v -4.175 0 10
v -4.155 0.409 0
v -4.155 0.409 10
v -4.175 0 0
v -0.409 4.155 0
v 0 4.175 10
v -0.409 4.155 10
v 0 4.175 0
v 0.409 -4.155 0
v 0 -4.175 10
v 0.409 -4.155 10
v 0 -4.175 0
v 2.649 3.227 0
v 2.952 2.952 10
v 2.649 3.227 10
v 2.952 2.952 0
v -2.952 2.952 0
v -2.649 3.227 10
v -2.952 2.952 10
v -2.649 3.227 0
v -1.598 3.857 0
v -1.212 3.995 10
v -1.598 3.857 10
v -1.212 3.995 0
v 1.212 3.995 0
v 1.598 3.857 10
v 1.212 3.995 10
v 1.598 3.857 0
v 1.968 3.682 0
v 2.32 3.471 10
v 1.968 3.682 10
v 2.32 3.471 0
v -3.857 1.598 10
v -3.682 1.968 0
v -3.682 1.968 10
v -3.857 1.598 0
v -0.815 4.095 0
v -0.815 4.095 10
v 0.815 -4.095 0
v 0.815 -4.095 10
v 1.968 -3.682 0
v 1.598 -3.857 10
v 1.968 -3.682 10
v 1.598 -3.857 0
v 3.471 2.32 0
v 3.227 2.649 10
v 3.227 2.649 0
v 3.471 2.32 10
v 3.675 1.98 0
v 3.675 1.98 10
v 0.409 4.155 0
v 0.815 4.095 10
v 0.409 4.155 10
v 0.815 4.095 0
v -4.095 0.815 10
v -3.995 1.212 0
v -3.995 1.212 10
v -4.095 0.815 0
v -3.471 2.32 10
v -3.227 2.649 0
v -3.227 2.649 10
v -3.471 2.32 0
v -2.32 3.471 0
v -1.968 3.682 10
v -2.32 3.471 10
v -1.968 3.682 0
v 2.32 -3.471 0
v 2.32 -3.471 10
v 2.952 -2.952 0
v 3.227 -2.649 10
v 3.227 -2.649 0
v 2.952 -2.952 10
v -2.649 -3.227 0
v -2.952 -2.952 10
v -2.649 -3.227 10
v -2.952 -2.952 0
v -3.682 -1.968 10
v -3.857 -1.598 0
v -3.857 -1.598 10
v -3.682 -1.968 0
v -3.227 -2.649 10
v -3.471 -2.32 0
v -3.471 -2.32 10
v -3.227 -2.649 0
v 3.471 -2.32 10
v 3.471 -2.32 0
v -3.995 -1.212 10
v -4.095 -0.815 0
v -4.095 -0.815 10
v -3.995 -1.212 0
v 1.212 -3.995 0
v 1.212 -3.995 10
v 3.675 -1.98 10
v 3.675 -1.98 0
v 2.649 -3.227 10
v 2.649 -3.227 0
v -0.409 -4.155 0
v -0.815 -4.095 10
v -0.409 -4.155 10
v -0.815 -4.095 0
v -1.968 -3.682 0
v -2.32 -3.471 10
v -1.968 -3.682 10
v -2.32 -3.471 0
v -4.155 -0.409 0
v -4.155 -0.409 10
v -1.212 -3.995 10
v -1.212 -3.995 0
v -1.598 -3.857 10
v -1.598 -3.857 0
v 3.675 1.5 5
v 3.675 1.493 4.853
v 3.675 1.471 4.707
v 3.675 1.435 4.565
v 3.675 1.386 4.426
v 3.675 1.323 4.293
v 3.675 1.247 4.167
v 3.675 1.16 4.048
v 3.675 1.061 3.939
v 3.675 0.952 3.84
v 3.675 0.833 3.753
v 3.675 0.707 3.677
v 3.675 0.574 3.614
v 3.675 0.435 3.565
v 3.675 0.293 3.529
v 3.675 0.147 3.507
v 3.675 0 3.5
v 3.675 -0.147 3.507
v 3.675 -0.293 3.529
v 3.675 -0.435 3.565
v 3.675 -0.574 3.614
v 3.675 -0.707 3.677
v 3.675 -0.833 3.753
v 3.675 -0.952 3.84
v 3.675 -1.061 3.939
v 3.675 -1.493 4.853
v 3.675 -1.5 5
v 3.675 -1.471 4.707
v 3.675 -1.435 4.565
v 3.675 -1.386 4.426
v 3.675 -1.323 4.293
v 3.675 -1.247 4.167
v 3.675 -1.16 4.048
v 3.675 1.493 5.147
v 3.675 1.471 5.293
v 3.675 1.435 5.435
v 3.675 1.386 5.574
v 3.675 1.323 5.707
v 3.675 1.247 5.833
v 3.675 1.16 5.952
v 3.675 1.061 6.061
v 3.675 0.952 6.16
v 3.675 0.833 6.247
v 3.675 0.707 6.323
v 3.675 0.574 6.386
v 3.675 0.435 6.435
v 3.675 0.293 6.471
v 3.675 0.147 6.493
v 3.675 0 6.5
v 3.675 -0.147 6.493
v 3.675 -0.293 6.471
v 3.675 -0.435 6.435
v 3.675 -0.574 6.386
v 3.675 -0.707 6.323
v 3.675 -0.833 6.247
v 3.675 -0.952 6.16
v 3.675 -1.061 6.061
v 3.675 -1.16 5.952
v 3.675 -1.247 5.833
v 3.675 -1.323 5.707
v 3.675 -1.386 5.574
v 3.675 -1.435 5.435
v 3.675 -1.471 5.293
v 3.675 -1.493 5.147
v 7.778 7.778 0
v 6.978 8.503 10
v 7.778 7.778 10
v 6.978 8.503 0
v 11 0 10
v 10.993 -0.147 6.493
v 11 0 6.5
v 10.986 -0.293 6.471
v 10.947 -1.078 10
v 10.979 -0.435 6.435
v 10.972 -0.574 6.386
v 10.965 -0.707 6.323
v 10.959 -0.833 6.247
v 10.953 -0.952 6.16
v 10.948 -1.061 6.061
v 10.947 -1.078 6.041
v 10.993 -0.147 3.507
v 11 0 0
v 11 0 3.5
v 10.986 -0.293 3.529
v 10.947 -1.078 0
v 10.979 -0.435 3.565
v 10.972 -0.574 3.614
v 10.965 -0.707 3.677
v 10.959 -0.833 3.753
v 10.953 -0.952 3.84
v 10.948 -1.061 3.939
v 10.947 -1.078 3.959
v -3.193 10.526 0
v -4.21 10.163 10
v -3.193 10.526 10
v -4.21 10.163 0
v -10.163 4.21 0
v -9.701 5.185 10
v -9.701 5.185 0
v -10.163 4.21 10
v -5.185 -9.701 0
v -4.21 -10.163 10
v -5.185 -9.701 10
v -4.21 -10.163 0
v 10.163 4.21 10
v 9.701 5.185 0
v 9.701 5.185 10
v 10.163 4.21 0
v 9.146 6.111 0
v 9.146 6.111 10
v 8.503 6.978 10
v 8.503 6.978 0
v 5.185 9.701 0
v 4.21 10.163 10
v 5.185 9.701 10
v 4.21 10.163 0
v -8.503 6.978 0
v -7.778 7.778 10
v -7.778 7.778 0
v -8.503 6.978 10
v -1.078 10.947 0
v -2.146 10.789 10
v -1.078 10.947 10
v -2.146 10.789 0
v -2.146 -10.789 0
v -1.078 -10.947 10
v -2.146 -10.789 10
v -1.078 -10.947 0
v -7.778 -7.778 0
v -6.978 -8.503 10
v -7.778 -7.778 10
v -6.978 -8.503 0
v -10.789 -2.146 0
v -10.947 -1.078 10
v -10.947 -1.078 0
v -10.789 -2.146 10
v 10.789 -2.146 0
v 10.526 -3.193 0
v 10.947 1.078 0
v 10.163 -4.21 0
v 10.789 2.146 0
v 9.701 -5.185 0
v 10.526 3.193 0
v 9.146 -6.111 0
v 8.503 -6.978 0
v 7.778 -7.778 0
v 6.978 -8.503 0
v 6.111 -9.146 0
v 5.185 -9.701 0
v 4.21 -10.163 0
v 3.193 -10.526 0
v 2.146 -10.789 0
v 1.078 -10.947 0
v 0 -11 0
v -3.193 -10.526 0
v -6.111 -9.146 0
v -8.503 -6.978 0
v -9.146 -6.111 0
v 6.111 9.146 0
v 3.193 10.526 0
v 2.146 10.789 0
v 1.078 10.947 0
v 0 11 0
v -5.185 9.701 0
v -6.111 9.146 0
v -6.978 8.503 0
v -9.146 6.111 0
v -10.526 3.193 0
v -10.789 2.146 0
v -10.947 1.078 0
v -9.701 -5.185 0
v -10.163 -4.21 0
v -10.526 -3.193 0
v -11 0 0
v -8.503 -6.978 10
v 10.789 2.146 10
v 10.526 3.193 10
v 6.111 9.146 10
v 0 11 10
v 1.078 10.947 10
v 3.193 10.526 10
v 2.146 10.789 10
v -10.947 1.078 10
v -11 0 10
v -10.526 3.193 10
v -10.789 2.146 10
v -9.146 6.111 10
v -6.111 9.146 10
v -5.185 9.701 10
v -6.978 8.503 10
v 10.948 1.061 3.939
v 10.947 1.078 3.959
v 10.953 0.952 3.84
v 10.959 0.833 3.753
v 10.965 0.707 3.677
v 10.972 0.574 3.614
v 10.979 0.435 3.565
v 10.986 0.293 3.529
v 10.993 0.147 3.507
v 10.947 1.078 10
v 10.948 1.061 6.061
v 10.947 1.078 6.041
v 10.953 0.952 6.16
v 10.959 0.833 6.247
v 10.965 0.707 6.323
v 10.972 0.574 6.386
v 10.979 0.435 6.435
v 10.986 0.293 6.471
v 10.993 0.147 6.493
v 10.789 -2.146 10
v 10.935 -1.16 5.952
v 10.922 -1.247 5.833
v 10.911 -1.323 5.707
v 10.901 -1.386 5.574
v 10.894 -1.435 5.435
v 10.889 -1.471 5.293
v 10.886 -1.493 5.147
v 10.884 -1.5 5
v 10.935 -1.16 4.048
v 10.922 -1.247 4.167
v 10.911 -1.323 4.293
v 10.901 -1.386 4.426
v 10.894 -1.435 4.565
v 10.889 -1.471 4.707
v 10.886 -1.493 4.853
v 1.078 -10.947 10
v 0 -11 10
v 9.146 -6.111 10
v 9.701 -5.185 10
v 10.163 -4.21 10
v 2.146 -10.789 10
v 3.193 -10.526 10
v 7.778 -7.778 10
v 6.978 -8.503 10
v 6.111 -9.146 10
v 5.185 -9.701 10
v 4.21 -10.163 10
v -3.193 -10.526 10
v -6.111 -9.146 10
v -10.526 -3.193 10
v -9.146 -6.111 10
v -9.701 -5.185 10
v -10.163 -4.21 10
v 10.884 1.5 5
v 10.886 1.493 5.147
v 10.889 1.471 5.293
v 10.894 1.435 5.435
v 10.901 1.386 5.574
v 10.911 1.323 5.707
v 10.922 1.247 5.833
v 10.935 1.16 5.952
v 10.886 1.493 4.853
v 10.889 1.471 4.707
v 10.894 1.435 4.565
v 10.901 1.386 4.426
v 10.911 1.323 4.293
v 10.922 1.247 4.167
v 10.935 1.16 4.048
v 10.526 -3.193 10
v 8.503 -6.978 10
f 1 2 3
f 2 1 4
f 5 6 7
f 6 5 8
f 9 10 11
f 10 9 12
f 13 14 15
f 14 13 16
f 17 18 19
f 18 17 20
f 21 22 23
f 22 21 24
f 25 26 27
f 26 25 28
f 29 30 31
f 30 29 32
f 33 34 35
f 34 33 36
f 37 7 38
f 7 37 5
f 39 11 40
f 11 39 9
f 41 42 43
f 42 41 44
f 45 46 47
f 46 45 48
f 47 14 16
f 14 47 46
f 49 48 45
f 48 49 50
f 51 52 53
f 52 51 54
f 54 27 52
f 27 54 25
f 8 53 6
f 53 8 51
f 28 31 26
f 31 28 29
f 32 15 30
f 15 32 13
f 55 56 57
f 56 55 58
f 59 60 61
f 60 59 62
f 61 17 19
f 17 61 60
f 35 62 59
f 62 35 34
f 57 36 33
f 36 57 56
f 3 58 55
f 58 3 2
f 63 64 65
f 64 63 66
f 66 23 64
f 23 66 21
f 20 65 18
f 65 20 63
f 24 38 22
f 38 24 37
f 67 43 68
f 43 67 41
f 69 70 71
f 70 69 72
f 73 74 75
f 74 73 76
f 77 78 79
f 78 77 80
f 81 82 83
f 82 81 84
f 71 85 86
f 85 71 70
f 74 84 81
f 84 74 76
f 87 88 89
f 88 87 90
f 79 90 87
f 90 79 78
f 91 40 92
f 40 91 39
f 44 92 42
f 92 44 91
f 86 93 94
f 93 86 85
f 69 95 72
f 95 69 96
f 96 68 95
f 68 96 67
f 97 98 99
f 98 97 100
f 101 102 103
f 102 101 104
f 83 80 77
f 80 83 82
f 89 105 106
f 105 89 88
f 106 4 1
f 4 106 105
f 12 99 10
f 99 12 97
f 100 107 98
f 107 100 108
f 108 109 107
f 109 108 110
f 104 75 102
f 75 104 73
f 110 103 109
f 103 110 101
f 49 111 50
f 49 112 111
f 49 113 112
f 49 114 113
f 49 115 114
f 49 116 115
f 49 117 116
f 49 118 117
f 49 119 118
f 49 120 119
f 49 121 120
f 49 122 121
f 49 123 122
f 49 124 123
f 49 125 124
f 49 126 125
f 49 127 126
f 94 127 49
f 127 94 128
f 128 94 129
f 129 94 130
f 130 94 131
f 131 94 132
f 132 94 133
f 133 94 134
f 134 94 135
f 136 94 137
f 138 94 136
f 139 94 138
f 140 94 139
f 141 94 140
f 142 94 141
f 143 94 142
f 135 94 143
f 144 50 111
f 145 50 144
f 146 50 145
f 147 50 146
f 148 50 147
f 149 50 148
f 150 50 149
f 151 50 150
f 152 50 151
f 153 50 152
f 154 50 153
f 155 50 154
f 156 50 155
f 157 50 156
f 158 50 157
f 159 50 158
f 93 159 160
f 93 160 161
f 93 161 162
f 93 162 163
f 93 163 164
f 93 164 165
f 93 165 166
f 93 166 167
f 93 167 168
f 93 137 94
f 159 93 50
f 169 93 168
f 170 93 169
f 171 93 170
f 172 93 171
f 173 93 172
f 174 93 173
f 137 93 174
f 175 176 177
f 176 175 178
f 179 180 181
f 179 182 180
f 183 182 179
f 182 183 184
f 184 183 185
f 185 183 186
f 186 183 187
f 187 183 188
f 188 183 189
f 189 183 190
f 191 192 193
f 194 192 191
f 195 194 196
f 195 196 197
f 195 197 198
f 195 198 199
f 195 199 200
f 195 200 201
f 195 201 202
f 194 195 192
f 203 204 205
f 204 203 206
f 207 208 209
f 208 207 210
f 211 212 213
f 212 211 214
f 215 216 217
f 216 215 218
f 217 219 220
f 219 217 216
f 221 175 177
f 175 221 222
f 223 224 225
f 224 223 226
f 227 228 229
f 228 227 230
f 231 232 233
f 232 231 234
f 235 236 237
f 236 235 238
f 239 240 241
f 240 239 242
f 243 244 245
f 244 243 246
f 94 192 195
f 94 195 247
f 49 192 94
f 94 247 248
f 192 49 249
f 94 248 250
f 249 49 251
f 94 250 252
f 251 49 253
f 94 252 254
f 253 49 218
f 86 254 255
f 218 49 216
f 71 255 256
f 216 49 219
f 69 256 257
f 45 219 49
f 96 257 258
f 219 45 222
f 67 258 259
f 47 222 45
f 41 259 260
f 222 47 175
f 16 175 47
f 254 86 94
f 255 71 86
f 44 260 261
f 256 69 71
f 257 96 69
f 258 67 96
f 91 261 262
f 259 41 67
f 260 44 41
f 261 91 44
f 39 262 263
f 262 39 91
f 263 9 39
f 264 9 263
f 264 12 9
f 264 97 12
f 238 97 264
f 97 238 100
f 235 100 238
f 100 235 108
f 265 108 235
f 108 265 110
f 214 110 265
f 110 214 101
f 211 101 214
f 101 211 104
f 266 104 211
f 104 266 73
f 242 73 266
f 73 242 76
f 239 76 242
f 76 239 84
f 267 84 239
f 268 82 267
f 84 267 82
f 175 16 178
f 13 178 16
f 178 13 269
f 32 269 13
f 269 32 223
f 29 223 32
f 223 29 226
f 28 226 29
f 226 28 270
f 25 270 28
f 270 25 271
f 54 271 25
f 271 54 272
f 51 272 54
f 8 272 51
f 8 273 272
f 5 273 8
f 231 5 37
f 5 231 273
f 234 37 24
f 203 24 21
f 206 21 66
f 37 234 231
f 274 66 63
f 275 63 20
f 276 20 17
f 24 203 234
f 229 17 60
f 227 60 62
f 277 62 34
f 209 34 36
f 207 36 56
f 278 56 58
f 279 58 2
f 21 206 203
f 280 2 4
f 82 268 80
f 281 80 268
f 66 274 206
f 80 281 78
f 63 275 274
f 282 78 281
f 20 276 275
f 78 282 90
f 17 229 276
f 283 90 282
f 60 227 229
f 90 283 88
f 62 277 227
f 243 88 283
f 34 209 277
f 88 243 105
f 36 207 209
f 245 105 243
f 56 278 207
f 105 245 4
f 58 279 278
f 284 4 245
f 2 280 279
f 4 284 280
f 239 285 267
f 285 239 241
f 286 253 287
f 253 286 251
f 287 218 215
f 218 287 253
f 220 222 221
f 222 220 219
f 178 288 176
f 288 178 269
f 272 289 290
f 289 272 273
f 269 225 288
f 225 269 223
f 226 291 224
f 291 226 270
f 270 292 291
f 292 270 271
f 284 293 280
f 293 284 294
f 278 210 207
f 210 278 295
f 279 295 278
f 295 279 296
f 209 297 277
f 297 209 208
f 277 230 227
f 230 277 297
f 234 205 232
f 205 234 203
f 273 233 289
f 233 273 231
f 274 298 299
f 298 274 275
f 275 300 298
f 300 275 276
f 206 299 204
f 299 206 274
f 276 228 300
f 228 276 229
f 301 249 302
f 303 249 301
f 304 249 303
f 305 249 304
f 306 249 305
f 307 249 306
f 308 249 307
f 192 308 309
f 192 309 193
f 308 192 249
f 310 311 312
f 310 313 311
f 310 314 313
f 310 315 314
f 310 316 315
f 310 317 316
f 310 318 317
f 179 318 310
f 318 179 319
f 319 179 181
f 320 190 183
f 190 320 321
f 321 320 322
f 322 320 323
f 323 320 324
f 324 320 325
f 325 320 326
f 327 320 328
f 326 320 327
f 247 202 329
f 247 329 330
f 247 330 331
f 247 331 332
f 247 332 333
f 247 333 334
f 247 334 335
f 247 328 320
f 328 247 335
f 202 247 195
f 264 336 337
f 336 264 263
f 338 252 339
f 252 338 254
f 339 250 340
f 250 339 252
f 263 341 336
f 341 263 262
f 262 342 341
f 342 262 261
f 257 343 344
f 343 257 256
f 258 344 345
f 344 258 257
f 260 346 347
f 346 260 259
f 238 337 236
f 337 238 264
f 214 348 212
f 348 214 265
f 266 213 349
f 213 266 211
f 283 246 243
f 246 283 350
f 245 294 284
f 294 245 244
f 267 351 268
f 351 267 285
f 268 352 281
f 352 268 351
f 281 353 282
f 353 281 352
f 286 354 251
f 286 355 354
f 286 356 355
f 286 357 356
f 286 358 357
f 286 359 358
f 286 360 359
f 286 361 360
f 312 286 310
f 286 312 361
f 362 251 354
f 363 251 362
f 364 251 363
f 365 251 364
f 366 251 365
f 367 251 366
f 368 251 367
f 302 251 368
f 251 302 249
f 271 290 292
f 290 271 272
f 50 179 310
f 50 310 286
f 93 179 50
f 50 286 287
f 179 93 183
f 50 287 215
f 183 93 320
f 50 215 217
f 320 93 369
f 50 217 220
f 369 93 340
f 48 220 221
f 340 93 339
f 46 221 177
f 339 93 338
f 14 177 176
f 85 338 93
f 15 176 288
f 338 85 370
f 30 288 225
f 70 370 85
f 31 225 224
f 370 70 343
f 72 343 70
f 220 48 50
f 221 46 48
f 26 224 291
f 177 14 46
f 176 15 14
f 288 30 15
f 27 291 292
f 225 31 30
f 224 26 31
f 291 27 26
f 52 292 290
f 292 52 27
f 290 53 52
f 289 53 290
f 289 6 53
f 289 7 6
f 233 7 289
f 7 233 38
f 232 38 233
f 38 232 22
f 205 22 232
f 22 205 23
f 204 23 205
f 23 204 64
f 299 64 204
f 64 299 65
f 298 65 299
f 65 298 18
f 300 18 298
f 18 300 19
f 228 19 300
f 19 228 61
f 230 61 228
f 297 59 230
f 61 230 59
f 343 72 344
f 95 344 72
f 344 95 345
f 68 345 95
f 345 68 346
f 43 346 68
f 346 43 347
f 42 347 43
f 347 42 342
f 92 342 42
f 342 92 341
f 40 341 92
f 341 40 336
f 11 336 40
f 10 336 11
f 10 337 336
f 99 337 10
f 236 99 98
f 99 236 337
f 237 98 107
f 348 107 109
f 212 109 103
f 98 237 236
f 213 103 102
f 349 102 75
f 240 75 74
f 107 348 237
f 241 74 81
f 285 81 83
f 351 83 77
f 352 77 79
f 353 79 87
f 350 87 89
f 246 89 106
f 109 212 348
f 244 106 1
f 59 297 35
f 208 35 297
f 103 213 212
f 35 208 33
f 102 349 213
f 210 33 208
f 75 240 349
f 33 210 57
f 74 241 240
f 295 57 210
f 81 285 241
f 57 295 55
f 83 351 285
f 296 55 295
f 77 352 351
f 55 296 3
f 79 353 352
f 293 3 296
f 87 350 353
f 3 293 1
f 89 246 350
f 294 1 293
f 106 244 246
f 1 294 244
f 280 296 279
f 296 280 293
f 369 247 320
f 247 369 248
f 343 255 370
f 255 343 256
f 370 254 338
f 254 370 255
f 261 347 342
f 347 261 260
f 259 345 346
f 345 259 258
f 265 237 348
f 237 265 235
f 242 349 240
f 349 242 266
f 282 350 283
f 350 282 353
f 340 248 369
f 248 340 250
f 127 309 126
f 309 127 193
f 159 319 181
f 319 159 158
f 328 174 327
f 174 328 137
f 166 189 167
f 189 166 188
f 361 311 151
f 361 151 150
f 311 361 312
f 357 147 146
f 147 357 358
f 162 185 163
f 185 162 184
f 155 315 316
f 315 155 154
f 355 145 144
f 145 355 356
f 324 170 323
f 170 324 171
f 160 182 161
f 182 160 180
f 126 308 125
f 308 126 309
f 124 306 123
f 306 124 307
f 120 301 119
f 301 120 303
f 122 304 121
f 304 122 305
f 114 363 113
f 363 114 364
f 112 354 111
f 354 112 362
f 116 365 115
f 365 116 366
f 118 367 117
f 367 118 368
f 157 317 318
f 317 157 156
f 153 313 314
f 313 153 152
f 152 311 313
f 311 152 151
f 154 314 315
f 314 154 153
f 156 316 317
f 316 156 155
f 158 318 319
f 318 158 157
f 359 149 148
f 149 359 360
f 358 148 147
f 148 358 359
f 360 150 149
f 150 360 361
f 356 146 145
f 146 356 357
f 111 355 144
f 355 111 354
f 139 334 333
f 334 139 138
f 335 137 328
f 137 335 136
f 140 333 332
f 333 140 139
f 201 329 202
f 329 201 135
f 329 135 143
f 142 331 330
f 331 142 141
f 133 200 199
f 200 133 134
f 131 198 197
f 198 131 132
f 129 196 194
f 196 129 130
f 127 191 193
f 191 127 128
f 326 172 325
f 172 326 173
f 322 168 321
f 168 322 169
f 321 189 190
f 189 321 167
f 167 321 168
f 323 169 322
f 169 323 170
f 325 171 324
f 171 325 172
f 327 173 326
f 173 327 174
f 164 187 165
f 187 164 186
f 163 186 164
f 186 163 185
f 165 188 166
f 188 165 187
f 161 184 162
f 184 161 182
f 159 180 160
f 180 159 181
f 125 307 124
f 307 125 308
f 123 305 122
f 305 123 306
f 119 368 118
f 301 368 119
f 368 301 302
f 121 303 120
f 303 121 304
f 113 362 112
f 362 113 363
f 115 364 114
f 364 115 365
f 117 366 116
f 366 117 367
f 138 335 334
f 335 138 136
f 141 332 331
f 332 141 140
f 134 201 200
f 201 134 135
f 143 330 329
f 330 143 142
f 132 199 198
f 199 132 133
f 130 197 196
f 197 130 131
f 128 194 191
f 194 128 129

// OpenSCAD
// file: parameters.scad
// =============================================================================
// Gen-CD — nightly 2026-10-14 (physics_scorer, honest magpylib watts)
// Push past Gen-CA on the same arc-nested one-plate architecture: poles out to R86, bobbins r65–105 × 4.95 mm copper. Full-resolution scorer picks this window at ≈8.56 W (386 m, at the wire budget) with a Ø229 stator that still packs; thinner-copper R86 tips (r65–107 × 4.65) need Ø232+ and would not pack. Same 8 bolt-on arcs/rotor + D-flat hub + open-centre stator + in-place bobbin bases that unlocked Gen-CA.
// Clocking 0 deg (magnets N facing S) + D-flat keyed bore + index notch + flip-symmetric hole map.
// Windable 2-piece bobbin; turns = physics_scorer turns_fit; copper only between flanges.
// Steel back-iron: 2× Ø198 × 4.76 mm (3/16") mild-steel discs (steel_backiron_disc.dxf); magnets sit ON the steel
// (through-pockets) -> score with --back-iron. Night 2026-10-14.
// =============================================================================
topology            = "dual_rotor";

// --- Wire / winding (physics_scorer winding-fit) -------------------------------
wire_awg            = 26;
wire_od             = 0.45;     // insulated OD mm (bare 0.405)
fill_realistic      = 0.65;     // insulated-wire area / window (DENSE layered wind with a jig; scorer cap 0.65)
turns               = 370;       // = physics_scorer turns_fit (do NOT raise)
coil_former_type    = "bobbin";
coil_core_inset     = 18.31;     // radial copper build: hub = copper boundary inset by this
wind_build_axial    = 0.0;      // nothing proud of the flanges
wind_build_radial   = 0.0;

// --- Bobbin (base + lid) ---------------------------------------------------------
coil_id_r           = 65.00;    // copper boundary sector
coil_od_r           = 105.00;
span_deg            = 26.91;    // = pitch - 2*asin((wall+0.85)/coil_id_r) -> >=1.2 mm stator web
former_web          = 4.95;     // copper height between flanges (TALL copper: steel keeps Bz up)
flange_t            = 0.80;     // >= 0.8 mm FDM wall rule (tall winds push on the flanges)
wall                = 0.80;     // flange lip beyond copper
former_bare_h       = former_web + 2 * flange_t;
coil_envelope_h     = former_bare_h + 2 * wind_build_axial;
tab_w               = 7.0;
tab_len             = 7.0;
tab_h               = former_bare_h / 2;
pin_d               = 1.9;      // 1.75 mm filament locating pin
coil_mount_r        = coil_od_r + 0.2 + 4.0;
lead_y              = 1.6;
lead_slot_w         = 0.9;
lead_groove_d       = 0.6;

// --- Gap -------------------------------------------------------------------------
run_clear           = 0.50;     // rotor face -> flange
gap_spacer_h        = run_clear + wind_build_axial;
m2m                 = coil_envelope_h + 2 * run_clear;   // rotor face to rotor face (= gap_sleeve length)

// --- Stator ----------------------------------------------------------------------
coil_stations       = 12;
bay_clear           = 0.35;     // 0.35 mm: bobbin BASES print IN PLACE inside the stator bays (print-in-place gap), then pop out
stator_thick        = former_bare_h;                        // bobbins flush both faces
stator_od           = 229.0;
shaft_clear_stator  = 14.0;     // stator is static; gap sleeve OD 12 spins inside
stator_ir           = 59.85;    // ANNULAR stator: open centre (nested one-plate pack); inner rim 4.0 mm

// --- Rotor(s) --------------------------------------------------------------------
magnet_Br           = 1.43;     // N52
magnet_d_large      = 20.0;
magnet_h_large      = 5.0;      // one O20x5 per pocket
magnet_h_small      = 5.0;      // unused: no O5 pockets in this kit
halbach_magnetisation = "none";  // NO O5 assist magnets in this kit (scan: they lower the 4-pole score)
rotor_b_same_axis   = true;     // same-index magnets share one axis: N faces S across the gap
large_pocket_d      = 20.3;
small_pocket_d      = 5.3;
pocket_h            = 5.00;     // THROUGH the carrier: magnet back face sits on the steel disc (FLUSH seat: carrier = magnet height, magnet face level with the rotor face)
large_n             = 8;
R_large             = 86.0;
small_r_list        = [];       // no O5 pockets
carrier_od          = 198.0;
ring_ir             = 72.85;    // RING rotor: PLA magnet ring r ring_ir..carrier_od/2 (steel disc = structural rotor)
hub_flange_od       = 74.0;     // separate rotor_hub flange (inside the ring, flush with the ring face)
csk_d               = 6.6;      // M3 countersunk head pocket (ISO 10642 head 6.0 nominal) on the stator face
csk_depth           = 1.55;     // = (csk_d - m3_clear) / 2: 90 deg cone; head sits 0.3 mm below the face
n_seg               = 8;        // magnet-carrier ARCS per rotor (segmented carrier)
seg_deg             = 360 / n_seg;
seg_start           = -22.5;   // arc edge angle (between pocket 0 and its clamp bolt)
seg_kerf_deg        = 0.4;      // gap between neighbouring arcs on the steel
carrier_thick       = pocket_h;
hub_h               = 12.0;     // > steel_t + insert: radial set-screw clears the steel
hub_od              = 24.0;     // slim hub so the M4 brace rods fit at R~18 inside the coil ring
hub_insert_d        = 4.0;      // M3 heat-set insert, radial, bears on the D-flat
rotor_b_offset_deg  = 0.0;      // CLOCKING: magnets directly opposite
shaft_key           = "dflat";
dflat_depth         = 0.5;      // 8 mm shaft with 0.5 mm flat (7.5 across flat)
index_notch_d       = 3.0;

// --- Steel back-iron (buyable laser-cut) -------------------------------------------
steel_t             = 4.76;      // mild steel thickness (image method ignores it; sized from steel_flux.py so the return path stays well below saturation)
steel_center_hole   = 26.0;     // slips over the rotor hub (OD 24)
steel_od            = carrier_od;   // steel disc OD = rotor carrier OD

// --- Modular MAX interface ----------------------------------------------------------
shaft_bore          = 8.35;
dflat_x             = 4.0 - dflat_depth + (shaft_bore - 8.0) / 2;
bearing_d           = 21.85;
bearing_h           = 7.2;
m3_clear            = 3.5;
bolt_r_inner        = 30.0;     // M3 steel-disc clamp bolts (inside the magnet ring)
bolt_n_inner        = 4;
bolt_inner_angles   = [0, 90, 180, 270];
bolt_r_outer        = 86.0;     // second M3 steel-disc clamp ring
bolt_outer_angles   = [22.5, 67.5, 112.5, 157.5, 202.5, 247.5, 292.5, 337.5];
flange_bolt_r       = 109.5;     // frame rods: OUTSIDE the rotor OD (rotors spin inside them)
flange_bolt_n       = 4;
flange_bolt_offset  = 45.00;    // between coil stations -> never cuts a lead groove/tab
brace_r             = 18.0;
brace_d             = 4.3;      // temporary M4 jack rods (assembly only)
brace_n             = 4;
brace_angles        = [45, 135, 225, 315];          // flip-symmetric

spacer_pad_od       = 14.0;
spacer_pad_id       = m3_clear;
endbell_od          = 229.0;
endbell_thick       = 8.0;
endbell_shaft_clear = 10.0;
collar_h            = 10.0;
standoff_od         = 9.0;
frame_standoff_h    = run_clear + carrier_thick + hub_h + collar_h + 2.0;
sleeve_od           = 12.0;
plate_max_mm        = 410;

$fn = 64;
// main file
// Gen-CD — shaft collar with D-flat bore (set screw bears on the flat); print x4
include <parameters.scad>;
$fn = 64;
// D-flat keyed bore: flat faces +X (angle 0 = magnet pocket 0 = index notch)
module dflat_bore(h) {
    intersection() {
        cylinder(d=shaft_bore, h=h);
        translate([-shaft_bore, -shaft_bore, 0]) cube([shaft_bore + dflat_x, 2*shaft_bore, h]);
    }
}

od = 22; h = collar_h; set_d = 3.0;
difference() {
    cylinder(d=od, h=h);
    translate([0, 0, -0.1]) dflat_bore(h + 0.2);
    translate([0, 0, h/2]) rotate([0, 90, 0]) cylinder(d=set_d, h=od);
}
